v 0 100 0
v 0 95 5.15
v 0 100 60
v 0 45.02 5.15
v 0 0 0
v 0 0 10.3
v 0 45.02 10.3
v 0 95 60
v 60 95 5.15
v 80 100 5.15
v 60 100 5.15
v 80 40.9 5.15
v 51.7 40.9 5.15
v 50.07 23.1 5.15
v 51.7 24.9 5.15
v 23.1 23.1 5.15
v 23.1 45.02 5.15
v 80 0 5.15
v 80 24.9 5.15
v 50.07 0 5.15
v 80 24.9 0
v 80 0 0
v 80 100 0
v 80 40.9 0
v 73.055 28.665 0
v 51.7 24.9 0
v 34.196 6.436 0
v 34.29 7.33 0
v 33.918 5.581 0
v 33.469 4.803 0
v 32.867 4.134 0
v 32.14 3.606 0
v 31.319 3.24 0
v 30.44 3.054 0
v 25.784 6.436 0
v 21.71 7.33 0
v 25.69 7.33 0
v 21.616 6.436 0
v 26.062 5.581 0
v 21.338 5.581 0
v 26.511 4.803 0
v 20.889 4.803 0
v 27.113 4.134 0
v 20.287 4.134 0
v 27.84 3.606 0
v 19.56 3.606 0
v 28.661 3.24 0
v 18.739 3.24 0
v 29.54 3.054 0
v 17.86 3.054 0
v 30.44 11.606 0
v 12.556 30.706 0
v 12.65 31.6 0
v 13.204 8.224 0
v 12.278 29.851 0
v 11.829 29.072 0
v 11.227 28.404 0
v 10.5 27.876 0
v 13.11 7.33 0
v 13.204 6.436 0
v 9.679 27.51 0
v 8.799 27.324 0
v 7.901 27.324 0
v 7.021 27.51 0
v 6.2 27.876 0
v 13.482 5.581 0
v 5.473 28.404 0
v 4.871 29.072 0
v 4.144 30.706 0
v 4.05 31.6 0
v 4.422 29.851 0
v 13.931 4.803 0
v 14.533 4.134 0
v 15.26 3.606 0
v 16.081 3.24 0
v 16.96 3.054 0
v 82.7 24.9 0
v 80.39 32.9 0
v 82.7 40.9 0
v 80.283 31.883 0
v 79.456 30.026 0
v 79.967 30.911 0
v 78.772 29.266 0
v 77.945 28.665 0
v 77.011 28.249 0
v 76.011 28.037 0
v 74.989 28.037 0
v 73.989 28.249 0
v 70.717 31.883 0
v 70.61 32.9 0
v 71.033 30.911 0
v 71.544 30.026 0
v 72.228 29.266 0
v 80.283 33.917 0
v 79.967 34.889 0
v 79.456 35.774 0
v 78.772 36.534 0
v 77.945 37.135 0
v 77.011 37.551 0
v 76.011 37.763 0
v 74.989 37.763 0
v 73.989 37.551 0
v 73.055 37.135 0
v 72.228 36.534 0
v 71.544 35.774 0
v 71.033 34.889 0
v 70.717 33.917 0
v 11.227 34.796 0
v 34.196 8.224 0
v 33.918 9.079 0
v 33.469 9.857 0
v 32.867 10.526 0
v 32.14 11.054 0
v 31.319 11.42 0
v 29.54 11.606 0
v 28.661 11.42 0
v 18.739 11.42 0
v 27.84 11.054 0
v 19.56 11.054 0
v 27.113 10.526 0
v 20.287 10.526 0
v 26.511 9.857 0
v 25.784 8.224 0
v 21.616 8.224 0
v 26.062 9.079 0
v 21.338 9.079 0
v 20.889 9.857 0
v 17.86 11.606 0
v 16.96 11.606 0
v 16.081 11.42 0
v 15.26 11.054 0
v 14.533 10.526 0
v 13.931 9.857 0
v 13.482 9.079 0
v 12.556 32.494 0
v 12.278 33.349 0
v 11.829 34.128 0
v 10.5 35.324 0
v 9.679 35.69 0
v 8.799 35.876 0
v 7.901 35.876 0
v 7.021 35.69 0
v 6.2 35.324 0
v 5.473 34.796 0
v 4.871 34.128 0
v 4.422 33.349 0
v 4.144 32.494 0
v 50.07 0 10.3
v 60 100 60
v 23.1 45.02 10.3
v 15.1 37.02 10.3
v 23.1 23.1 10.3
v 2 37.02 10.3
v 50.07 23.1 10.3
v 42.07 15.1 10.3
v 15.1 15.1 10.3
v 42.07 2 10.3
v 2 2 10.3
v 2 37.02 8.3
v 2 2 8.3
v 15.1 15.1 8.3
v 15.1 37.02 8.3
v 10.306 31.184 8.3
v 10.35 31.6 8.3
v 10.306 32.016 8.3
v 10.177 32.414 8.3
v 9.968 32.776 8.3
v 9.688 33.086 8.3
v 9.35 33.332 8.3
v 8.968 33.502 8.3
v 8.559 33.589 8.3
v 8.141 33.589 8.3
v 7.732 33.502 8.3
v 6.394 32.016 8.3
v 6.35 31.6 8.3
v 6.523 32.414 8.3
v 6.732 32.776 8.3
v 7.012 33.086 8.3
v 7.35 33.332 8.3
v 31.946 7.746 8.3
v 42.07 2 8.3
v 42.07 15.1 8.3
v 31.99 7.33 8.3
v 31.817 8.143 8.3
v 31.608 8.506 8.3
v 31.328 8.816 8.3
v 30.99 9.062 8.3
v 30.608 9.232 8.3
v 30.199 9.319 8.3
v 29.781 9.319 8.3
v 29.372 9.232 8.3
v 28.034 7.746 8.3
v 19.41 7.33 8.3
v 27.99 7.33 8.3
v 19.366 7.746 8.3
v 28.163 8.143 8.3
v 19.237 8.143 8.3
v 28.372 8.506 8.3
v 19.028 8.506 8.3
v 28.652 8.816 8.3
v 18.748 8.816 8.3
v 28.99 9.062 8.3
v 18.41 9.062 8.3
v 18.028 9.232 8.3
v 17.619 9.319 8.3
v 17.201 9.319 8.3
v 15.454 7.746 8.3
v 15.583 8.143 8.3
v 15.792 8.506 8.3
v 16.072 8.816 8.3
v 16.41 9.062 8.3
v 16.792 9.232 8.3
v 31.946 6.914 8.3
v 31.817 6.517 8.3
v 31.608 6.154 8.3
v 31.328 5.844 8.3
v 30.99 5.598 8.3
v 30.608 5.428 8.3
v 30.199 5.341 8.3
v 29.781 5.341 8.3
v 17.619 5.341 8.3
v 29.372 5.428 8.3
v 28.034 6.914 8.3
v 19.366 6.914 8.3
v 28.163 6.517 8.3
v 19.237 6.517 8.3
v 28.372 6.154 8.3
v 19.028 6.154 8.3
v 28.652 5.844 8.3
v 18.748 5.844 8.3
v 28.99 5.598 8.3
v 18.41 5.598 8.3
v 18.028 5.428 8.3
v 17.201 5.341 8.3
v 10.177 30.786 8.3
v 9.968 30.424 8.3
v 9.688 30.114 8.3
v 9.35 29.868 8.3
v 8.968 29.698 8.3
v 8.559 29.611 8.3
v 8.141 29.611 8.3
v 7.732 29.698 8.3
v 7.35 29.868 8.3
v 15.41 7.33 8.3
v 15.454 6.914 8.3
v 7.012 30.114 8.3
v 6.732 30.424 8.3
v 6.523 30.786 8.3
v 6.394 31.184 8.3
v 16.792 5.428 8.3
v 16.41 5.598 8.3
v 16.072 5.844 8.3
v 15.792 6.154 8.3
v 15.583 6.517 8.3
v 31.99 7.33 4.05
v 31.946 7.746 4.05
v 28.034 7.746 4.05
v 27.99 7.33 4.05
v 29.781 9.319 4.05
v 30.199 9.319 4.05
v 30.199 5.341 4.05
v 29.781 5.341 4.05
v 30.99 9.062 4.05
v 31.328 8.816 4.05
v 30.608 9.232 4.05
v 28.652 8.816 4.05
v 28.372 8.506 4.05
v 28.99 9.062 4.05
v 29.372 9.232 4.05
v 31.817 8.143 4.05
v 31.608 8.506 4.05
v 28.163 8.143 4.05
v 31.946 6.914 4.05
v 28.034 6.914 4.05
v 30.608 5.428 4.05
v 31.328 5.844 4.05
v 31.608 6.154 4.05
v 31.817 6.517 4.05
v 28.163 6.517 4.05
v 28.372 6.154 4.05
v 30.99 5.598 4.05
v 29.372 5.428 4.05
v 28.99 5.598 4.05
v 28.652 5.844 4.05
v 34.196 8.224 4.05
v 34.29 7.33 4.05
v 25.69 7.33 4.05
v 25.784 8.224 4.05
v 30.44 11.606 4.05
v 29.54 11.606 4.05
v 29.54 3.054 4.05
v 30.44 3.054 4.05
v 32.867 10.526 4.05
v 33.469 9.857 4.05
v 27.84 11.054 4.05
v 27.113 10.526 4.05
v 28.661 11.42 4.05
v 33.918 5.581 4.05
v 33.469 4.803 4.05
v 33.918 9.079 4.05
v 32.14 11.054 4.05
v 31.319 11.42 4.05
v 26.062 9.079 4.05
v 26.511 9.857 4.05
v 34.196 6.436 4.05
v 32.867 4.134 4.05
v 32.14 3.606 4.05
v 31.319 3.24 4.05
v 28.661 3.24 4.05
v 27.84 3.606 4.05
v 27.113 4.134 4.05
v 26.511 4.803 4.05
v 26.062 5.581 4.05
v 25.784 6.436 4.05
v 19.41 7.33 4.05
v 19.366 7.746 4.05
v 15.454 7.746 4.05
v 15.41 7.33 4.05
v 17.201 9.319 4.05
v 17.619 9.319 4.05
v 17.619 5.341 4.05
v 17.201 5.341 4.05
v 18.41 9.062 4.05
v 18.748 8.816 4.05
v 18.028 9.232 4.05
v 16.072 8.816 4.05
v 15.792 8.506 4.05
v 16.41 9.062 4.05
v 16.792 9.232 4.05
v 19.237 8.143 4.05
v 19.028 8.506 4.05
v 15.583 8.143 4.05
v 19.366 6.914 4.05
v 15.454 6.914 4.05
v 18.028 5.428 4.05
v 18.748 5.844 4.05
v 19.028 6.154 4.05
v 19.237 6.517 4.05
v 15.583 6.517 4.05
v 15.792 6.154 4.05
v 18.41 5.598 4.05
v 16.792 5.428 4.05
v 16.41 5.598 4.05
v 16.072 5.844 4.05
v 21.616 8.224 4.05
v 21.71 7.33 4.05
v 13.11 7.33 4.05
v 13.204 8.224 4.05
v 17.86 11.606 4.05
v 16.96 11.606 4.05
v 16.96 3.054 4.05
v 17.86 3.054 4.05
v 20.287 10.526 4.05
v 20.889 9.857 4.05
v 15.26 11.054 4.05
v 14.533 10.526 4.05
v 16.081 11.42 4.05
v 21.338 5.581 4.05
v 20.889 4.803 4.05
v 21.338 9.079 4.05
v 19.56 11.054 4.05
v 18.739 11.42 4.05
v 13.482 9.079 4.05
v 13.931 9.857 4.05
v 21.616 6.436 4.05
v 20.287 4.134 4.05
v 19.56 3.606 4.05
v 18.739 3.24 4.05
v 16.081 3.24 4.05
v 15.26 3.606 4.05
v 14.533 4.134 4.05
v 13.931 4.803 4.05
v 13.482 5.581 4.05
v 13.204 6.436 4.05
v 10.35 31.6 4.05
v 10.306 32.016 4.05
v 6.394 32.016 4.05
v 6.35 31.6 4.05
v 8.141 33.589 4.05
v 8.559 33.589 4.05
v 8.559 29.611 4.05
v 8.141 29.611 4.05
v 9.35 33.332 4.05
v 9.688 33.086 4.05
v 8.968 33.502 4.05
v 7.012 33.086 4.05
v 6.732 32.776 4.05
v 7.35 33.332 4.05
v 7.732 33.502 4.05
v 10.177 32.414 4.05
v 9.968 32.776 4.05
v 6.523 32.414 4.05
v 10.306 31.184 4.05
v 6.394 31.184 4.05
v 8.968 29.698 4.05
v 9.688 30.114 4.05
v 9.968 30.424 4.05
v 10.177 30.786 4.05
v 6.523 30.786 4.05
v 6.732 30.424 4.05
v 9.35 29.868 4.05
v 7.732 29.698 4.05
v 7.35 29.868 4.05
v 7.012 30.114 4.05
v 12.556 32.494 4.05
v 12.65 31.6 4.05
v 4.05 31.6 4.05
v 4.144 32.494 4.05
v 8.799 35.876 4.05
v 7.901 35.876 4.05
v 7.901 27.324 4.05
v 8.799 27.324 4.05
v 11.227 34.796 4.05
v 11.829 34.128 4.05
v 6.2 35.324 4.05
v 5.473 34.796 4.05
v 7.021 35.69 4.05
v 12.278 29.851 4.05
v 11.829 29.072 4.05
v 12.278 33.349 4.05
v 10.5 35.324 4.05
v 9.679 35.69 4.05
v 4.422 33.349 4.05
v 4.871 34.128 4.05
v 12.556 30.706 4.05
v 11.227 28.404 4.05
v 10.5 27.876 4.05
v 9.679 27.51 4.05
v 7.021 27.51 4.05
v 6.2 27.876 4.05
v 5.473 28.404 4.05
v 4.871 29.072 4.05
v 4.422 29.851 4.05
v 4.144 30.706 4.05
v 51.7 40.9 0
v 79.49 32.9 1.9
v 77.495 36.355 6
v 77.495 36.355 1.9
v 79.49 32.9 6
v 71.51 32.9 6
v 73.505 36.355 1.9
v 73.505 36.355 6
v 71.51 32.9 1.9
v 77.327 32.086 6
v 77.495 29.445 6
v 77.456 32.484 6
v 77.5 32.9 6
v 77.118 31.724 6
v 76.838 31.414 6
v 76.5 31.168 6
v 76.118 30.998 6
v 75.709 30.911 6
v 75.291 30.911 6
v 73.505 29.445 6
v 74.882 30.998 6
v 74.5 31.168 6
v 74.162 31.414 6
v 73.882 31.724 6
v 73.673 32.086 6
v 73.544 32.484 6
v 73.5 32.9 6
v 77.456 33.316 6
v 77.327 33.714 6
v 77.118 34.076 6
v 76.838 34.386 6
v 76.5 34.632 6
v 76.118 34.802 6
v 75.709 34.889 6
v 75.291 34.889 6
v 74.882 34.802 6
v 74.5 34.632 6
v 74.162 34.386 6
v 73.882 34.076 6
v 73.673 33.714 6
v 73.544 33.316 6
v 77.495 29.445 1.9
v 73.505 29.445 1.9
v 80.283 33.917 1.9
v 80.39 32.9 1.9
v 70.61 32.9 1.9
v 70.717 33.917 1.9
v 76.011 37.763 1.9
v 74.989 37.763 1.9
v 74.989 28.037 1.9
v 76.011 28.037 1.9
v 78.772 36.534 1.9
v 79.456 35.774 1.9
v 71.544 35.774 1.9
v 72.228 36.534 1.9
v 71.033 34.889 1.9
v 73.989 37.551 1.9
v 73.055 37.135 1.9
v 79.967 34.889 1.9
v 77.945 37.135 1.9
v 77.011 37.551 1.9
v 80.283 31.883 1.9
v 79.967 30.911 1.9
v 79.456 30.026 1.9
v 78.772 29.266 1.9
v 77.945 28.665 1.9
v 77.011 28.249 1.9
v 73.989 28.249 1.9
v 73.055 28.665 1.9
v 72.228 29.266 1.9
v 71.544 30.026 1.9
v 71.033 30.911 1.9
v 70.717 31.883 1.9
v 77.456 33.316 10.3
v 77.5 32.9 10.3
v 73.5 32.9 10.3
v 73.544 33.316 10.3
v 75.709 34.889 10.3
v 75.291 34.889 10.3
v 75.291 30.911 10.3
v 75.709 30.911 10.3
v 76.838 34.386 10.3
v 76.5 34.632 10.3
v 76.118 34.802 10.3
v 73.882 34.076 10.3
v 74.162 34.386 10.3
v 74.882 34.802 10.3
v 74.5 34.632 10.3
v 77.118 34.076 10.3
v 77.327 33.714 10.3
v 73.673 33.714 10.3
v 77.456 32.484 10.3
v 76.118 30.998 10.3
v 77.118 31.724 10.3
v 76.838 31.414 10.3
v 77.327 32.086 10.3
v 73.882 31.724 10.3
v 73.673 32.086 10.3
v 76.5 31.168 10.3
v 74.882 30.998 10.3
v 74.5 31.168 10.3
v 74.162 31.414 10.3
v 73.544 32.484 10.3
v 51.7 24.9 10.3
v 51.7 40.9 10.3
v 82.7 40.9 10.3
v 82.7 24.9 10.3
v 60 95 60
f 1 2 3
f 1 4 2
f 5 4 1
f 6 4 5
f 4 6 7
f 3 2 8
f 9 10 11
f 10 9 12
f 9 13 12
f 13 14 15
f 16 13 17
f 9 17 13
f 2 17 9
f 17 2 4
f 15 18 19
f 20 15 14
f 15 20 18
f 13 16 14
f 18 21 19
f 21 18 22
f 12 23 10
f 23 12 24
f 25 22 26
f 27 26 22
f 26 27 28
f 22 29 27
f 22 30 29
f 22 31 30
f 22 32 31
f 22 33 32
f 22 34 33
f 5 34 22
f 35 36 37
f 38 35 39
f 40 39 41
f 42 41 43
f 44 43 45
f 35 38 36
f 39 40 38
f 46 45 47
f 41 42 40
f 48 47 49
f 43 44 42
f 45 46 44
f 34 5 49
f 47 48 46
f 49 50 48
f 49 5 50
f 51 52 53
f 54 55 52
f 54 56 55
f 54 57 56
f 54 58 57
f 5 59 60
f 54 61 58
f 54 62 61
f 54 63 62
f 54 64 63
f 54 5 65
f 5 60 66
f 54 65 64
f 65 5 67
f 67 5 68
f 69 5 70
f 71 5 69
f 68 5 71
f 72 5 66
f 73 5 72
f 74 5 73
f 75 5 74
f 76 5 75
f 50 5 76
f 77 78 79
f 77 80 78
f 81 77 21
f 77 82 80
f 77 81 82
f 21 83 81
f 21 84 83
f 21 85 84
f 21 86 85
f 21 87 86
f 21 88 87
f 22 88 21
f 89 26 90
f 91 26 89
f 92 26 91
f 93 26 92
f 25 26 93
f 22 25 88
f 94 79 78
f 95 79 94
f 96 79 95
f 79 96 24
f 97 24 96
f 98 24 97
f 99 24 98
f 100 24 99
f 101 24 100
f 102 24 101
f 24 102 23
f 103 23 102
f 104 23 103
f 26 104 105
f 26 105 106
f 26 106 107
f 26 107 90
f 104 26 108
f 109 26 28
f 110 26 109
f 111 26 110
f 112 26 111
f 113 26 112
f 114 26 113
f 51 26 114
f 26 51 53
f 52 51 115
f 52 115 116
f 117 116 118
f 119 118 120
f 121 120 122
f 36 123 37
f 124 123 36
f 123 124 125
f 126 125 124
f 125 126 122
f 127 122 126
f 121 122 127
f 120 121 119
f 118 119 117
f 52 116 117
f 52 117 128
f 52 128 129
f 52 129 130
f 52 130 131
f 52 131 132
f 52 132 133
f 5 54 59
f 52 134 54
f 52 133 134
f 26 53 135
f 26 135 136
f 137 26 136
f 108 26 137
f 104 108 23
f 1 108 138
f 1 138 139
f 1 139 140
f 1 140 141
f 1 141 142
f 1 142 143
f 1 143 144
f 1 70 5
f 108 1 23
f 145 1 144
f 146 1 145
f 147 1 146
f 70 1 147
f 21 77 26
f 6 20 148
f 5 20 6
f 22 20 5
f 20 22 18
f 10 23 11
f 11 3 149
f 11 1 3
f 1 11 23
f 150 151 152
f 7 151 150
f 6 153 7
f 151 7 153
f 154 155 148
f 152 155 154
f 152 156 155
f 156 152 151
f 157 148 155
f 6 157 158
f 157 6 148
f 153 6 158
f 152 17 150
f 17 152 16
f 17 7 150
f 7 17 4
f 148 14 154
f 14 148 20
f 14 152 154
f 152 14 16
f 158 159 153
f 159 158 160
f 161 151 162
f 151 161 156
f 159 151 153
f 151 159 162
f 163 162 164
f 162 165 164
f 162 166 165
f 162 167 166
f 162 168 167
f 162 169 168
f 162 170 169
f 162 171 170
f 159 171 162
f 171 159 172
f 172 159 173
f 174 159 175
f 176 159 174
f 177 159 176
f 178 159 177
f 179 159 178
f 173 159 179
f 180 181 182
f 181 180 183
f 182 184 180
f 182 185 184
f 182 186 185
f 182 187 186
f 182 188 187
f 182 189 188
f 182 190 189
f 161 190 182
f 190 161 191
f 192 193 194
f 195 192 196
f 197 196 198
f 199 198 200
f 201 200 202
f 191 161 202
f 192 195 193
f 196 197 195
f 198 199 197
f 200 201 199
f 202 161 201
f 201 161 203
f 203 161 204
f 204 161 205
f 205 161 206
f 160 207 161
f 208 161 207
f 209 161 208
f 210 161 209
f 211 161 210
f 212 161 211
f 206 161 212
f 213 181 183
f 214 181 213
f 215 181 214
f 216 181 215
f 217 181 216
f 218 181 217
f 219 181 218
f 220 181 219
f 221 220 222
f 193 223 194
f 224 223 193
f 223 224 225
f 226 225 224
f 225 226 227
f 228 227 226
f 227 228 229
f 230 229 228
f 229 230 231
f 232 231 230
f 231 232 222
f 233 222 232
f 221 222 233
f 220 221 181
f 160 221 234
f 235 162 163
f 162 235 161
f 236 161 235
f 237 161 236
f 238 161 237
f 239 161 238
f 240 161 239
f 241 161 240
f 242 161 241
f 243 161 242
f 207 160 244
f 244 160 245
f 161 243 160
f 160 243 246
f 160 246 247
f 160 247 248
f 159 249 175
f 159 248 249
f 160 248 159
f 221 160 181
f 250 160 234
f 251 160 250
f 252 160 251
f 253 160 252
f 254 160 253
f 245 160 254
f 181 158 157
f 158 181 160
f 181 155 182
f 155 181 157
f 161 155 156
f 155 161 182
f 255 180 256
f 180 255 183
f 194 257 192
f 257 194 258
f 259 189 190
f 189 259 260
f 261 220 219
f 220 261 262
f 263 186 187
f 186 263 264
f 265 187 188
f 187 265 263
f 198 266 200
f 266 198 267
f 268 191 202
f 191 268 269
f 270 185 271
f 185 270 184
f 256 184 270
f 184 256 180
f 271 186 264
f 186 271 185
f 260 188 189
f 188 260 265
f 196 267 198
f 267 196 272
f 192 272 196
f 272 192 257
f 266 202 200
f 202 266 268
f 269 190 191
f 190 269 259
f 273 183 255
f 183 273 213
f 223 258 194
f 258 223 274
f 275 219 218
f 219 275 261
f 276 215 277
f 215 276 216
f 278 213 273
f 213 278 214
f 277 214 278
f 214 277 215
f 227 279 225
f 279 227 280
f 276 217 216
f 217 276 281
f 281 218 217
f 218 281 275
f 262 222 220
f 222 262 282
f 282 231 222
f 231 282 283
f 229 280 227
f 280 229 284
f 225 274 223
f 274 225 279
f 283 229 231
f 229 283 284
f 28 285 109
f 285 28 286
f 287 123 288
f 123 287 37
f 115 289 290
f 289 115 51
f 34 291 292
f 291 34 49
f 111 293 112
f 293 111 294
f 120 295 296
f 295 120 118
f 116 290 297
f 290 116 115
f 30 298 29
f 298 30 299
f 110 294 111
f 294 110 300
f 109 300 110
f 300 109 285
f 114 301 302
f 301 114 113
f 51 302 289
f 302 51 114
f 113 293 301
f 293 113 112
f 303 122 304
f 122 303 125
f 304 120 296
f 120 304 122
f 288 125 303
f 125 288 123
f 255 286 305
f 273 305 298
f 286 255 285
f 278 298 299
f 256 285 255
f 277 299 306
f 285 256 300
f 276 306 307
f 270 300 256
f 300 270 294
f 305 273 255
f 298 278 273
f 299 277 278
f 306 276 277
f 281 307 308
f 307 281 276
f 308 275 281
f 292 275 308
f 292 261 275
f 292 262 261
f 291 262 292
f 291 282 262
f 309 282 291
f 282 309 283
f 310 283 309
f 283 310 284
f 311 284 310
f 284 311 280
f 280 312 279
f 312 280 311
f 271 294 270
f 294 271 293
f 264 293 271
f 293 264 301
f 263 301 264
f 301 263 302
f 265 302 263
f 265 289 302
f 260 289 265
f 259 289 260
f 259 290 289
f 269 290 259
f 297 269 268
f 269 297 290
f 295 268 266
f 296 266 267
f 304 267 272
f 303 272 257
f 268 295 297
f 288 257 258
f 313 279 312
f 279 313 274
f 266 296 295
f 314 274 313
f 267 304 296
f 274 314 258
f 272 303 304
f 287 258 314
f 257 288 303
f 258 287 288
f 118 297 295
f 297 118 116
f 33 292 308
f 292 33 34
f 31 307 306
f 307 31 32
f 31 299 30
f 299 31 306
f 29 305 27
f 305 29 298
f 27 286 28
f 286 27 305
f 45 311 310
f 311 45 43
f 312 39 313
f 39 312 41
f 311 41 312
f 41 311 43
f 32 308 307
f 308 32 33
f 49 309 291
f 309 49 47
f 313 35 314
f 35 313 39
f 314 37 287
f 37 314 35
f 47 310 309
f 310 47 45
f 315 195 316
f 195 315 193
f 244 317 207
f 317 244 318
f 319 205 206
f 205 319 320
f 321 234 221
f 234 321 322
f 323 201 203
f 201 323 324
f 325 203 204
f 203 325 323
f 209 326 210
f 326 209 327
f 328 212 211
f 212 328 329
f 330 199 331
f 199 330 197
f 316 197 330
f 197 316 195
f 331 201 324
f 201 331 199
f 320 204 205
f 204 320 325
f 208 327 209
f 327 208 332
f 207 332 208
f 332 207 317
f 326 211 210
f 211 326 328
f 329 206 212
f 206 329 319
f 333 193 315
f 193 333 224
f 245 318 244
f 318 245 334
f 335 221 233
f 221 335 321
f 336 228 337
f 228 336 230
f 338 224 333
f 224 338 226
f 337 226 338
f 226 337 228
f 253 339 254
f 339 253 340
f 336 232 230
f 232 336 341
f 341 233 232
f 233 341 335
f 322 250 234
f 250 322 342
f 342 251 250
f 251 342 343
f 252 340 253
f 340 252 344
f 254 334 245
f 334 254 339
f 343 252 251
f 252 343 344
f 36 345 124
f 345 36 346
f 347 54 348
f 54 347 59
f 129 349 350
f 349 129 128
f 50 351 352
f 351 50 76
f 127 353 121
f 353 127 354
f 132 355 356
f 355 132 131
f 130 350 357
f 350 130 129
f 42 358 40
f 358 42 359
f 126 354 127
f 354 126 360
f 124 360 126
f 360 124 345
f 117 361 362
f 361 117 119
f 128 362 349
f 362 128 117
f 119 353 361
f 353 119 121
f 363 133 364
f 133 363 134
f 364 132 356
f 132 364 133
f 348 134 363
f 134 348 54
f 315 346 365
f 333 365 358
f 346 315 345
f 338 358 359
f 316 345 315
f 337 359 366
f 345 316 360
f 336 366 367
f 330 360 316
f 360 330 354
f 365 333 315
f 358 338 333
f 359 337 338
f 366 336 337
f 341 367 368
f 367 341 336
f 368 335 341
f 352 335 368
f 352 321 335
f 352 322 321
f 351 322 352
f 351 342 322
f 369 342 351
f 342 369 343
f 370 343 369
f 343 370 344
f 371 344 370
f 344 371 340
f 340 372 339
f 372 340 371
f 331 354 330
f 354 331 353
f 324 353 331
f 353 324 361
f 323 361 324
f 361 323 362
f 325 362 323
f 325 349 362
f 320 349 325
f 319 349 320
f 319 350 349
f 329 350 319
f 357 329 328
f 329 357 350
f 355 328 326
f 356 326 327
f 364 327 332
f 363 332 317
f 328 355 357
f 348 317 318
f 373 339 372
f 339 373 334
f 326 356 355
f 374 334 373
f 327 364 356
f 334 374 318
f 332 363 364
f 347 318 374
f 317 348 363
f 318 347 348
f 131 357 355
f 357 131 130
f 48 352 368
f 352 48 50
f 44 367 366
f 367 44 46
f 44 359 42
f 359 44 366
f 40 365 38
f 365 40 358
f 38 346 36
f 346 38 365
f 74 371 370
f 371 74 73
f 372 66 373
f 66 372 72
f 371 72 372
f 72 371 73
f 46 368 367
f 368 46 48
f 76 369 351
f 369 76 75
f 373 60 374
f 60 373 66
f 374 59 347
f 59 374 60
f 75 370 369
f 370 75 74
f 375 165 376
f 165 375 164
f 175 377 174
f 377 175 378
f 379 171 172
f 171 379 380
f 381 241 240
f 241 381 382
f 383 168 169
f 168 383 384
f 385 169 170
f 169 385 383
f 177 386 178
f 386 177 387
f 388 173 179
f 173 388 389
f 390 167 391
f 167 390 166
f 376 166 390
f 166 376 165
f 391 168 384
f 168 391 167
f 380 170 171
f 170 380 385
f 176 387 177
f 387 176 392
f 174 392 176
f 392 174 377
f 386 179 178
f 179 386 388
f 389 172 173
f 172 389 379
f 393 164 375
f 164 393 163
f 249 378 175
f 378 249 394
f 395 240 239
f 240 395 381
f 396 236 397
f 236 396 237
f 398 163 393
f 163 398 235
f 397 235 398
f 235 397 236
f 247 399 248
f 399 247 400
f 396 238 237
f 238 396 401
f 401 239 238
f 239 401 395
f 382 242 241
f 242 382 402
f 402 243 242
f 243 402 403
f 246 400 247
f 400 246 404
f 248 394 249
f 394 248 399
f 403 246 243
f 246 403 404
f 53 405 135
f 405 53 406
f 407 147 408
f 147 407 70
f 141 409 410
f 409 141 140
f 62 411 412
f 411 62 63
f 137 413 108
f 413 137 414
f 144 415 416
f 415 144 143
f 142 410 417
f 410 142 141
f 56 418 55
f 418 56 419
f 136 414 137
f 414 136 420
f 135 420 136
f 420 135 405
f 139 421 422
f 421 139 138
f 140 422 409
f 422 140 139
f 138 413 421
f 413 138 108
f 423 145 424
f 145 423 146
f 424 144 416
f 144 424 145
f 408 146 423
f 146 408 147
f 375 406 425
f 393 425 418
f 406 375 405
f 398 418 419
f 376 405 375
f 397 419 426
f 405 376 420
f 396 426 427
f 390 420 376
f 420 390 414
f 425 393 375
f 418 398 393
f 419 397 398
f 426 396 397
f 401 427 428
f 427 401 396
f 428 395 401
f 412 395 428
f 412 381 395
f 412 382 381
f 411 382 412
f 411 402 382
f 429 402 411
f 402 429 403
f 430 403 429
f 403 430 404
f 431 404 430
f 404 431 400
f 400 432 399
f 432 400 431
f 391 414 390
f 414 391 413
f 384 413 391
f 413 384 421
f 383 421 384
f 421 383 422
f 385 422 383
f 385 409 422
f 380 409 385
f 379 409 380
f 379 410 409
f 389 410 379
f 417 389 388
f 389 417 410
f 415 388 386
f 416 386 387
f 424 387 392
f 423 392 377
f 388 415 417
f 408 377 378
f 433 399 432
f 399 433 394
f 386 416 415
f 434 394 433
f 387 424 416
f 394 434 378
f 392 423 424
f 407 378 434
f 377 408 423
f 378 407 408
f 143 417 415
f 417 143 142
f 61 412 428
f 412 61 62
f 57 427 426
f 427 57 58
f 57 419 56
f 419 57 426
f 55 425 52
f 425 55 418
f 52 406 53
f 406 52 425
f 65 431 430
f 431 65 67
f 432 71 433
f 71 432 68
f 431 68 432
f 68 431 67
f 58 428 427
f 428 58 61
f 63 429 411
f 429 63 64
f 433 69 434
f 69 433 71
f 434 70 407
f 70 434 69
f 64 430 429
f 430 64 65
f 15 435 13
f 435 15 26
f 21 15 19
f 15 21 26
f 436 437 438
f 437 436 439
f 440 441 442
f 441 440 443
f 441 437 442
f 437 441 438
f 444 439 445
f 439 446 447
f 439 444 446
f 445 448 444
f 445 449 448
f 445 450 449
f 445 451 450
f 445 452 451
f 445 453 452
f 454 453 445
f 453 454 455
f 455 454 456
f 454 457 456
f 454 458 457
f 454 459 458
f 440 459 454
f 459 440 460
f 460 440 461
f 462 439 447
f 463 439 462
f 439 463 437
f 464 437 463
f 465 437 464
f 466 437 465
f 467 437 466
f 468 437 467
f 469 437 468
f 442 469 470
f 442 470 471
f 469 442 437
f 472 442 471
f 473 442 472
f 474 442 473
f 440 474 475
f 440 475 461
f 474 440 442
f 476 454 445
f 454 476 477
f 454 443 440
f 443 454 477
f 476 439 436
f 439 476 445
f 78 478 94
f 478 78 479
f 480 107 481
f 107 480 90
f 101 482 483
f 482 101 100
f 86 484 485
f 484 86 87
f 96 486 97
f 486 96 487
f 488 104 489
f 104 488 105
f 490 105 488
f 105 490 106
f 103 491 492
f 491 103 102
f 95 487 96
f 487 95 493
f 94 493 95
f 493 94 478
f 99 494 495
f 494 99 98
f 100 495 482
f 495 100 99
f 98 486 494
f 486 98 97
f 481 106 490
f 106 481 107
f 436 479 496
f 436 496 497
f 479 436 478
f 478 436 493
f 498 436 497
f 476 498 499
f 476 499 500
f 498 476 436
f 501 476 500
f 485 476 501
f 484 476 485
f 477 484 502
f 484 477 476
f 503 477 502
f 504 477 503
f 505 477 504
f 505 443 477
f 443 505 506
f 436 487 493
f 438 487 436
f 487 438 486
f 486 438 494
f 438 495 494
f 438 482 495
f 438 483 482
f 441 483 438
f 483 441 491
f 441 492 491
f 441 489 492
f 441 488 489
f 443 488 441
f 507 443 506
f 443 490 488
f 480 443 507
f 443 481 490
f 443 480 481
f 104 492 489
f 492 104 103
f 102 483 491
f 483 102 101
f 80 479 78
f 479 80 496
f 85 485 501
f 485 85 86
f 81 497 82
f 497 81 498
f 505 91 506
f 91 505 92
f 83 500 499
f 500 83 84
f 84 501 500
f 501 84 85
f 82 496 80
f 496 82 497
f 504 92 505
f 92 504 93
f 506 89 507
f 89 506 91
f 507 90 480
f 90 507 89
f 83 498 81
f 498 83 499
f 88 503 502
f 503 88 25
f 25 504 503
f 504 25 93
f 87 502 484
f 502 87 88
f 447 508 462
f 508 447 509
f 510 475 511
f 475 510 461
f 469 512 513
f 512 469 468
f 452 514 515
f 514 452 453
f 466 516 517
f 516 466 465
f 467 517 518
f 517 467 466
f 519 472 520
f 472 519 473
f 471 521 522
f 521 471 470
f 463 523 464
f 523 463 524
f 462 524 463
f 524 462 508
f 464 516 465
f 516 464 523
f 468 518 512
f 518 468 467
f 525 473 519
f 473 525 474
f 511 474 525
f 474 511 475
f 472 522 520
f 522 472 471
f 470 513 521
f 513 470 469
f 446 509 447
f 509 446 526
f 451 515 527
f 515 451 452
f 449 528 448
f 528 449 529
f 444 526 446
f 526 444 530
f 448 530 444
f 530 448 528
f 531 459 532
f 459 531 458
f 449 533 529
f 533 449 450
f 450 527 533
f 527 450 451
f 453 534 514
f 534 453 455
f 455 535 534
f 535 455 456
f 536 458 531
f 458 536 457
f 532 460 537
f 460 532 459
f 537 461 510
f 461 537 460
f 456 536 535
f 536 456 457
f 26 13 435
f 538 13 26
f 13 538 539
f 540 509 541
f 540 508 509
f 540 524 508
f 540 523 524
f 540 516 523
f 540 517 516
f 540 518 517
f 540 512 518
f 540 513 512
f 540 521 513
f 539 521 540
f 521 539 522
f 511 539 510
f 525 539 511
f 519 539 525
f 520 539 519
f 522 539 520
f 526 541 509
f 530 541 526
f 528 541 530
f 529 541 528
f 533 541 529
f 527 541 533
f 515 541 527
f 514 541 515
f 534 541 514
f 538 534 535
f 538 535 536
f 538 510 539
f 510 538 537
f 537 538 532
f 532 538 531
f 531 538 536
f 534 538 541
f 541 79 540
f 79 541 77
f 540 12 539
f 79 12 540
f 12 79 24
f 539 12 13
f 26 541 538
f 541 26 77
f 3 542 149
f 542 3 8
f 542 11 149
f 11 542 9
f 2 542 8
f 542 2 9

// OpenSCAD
////////////////////////////////////////////////////////
//// jig to hold the galvo motors and laser source /////
//// so that the speed and response of the motors  /////
//// can be tested.                                /////
//// this is part of the development of an         /////
//// scanning microscope built with off-the-shelf  /////
////  components                                   /////
////  CC-BY-SA 4.0 20191203 AM Chagas              /////
////////////////////////////////////////////////////////

tol = 0.1;

//screw dimensions
screwd = 3.8;
screwh = 10;
sheadd = 8.4;
sheadh = 3.8;
//nut dimensions
nutd = 7.78;
nuth = 3.1;

platet = 6 +sheadh+0.5;
platex = 80;
platey = 100;
//base holding the galvos
//"L" shaped
bthick = 12.90;
l1len = 34.82;
l2len = 39.87;
//extra thickness for the base
extrat = 10;

//holes in the base 
h1x = 26.19;
h1y = 3.53;

h2x = 13.61;
h2y = 3.53;

h3y = 27.8; 
h3x = bthick/2;//3.53;

// laser holder 
laserht = 16; // +12 thickness for where the laser is being held
laserhl = 51;

laserholed = 23.8;

//offset variables to move parts away from plate edge
offsetx = 2;
offsety = 2;

fn1=6;
fn2=30;

///// modules ////////

module screw(diam1=screwd+2*tol,h1=screwh,diam2=sheadd+2*tol,h2=sheadh+0.5,fn1=6,fn2=6){
    translate([0,0,h1/2]){
        cylinder(d=diam1,h=h1,center=true,$fn=fn1);
    }//end translate
    translate([0,0,h2/2]){
        cylinder(d=diam2,h=h2,center=true,$fn=fn2);
    }//end translate
    
    }//end module


///////
    
    
    
    
    
difference(){
    union(){
        cube([platex,platey,platet/2]);
        cube([extrat+bthick+2*tol,extrat+l1len+2*tol,platet]); 
        cube([extrat+l2len+2*tol,extrat+bthick+2*tol,platet]);
    }//union
    
    union(){
        translate([offsetx,offsety,platet-2]){
            cube([bthick+2*tol,l1len+2*tol,5]); 
            cube([l2len+2*tol,bthick+2*tol,5]);
        }//end translate

    translate([h1x+screwd,h1y+screwd,-0.25]){
        screw(fn1=30,fn2=30);   
    }//end translate

    translate([h2x+screwd,h2y+screwd,-0.25]){
        screw(fn1=30,fn2=30); 
    
    }//end translate

    translate([h3x+screwd/2,h3y+screwd,-0.25]){
        screw(fn1=30,fn2=30); 
    }//end translate
    translate([bthick+extrat+laserholed+5,bthick+extrat+2,-1]){
    
        cube([laserhl-20,laserht,platet]);
    }

    }//end union
}//end difference

translate([bthick+extrat+laserholed+5,bthick+extrat+2,0]){
    difference(){
        cube([laserhl-20,laserht,platet]);
    
        translate([laserholed,laserht/2,-0.1]){
            cylinder(d=4,h=platet+1,$fn=30);
            screw(diam1 = nutd+2*tol, h1=nuth+3,h2=2,diam2=nutd+2,fn1=fn1,fn2=fn2);
        }//end translate
    }//end difference
    }//end translate
translate([0,platey-extrat+5,0]){
    cube([60,extrat-5,60]);
    }//end translate
